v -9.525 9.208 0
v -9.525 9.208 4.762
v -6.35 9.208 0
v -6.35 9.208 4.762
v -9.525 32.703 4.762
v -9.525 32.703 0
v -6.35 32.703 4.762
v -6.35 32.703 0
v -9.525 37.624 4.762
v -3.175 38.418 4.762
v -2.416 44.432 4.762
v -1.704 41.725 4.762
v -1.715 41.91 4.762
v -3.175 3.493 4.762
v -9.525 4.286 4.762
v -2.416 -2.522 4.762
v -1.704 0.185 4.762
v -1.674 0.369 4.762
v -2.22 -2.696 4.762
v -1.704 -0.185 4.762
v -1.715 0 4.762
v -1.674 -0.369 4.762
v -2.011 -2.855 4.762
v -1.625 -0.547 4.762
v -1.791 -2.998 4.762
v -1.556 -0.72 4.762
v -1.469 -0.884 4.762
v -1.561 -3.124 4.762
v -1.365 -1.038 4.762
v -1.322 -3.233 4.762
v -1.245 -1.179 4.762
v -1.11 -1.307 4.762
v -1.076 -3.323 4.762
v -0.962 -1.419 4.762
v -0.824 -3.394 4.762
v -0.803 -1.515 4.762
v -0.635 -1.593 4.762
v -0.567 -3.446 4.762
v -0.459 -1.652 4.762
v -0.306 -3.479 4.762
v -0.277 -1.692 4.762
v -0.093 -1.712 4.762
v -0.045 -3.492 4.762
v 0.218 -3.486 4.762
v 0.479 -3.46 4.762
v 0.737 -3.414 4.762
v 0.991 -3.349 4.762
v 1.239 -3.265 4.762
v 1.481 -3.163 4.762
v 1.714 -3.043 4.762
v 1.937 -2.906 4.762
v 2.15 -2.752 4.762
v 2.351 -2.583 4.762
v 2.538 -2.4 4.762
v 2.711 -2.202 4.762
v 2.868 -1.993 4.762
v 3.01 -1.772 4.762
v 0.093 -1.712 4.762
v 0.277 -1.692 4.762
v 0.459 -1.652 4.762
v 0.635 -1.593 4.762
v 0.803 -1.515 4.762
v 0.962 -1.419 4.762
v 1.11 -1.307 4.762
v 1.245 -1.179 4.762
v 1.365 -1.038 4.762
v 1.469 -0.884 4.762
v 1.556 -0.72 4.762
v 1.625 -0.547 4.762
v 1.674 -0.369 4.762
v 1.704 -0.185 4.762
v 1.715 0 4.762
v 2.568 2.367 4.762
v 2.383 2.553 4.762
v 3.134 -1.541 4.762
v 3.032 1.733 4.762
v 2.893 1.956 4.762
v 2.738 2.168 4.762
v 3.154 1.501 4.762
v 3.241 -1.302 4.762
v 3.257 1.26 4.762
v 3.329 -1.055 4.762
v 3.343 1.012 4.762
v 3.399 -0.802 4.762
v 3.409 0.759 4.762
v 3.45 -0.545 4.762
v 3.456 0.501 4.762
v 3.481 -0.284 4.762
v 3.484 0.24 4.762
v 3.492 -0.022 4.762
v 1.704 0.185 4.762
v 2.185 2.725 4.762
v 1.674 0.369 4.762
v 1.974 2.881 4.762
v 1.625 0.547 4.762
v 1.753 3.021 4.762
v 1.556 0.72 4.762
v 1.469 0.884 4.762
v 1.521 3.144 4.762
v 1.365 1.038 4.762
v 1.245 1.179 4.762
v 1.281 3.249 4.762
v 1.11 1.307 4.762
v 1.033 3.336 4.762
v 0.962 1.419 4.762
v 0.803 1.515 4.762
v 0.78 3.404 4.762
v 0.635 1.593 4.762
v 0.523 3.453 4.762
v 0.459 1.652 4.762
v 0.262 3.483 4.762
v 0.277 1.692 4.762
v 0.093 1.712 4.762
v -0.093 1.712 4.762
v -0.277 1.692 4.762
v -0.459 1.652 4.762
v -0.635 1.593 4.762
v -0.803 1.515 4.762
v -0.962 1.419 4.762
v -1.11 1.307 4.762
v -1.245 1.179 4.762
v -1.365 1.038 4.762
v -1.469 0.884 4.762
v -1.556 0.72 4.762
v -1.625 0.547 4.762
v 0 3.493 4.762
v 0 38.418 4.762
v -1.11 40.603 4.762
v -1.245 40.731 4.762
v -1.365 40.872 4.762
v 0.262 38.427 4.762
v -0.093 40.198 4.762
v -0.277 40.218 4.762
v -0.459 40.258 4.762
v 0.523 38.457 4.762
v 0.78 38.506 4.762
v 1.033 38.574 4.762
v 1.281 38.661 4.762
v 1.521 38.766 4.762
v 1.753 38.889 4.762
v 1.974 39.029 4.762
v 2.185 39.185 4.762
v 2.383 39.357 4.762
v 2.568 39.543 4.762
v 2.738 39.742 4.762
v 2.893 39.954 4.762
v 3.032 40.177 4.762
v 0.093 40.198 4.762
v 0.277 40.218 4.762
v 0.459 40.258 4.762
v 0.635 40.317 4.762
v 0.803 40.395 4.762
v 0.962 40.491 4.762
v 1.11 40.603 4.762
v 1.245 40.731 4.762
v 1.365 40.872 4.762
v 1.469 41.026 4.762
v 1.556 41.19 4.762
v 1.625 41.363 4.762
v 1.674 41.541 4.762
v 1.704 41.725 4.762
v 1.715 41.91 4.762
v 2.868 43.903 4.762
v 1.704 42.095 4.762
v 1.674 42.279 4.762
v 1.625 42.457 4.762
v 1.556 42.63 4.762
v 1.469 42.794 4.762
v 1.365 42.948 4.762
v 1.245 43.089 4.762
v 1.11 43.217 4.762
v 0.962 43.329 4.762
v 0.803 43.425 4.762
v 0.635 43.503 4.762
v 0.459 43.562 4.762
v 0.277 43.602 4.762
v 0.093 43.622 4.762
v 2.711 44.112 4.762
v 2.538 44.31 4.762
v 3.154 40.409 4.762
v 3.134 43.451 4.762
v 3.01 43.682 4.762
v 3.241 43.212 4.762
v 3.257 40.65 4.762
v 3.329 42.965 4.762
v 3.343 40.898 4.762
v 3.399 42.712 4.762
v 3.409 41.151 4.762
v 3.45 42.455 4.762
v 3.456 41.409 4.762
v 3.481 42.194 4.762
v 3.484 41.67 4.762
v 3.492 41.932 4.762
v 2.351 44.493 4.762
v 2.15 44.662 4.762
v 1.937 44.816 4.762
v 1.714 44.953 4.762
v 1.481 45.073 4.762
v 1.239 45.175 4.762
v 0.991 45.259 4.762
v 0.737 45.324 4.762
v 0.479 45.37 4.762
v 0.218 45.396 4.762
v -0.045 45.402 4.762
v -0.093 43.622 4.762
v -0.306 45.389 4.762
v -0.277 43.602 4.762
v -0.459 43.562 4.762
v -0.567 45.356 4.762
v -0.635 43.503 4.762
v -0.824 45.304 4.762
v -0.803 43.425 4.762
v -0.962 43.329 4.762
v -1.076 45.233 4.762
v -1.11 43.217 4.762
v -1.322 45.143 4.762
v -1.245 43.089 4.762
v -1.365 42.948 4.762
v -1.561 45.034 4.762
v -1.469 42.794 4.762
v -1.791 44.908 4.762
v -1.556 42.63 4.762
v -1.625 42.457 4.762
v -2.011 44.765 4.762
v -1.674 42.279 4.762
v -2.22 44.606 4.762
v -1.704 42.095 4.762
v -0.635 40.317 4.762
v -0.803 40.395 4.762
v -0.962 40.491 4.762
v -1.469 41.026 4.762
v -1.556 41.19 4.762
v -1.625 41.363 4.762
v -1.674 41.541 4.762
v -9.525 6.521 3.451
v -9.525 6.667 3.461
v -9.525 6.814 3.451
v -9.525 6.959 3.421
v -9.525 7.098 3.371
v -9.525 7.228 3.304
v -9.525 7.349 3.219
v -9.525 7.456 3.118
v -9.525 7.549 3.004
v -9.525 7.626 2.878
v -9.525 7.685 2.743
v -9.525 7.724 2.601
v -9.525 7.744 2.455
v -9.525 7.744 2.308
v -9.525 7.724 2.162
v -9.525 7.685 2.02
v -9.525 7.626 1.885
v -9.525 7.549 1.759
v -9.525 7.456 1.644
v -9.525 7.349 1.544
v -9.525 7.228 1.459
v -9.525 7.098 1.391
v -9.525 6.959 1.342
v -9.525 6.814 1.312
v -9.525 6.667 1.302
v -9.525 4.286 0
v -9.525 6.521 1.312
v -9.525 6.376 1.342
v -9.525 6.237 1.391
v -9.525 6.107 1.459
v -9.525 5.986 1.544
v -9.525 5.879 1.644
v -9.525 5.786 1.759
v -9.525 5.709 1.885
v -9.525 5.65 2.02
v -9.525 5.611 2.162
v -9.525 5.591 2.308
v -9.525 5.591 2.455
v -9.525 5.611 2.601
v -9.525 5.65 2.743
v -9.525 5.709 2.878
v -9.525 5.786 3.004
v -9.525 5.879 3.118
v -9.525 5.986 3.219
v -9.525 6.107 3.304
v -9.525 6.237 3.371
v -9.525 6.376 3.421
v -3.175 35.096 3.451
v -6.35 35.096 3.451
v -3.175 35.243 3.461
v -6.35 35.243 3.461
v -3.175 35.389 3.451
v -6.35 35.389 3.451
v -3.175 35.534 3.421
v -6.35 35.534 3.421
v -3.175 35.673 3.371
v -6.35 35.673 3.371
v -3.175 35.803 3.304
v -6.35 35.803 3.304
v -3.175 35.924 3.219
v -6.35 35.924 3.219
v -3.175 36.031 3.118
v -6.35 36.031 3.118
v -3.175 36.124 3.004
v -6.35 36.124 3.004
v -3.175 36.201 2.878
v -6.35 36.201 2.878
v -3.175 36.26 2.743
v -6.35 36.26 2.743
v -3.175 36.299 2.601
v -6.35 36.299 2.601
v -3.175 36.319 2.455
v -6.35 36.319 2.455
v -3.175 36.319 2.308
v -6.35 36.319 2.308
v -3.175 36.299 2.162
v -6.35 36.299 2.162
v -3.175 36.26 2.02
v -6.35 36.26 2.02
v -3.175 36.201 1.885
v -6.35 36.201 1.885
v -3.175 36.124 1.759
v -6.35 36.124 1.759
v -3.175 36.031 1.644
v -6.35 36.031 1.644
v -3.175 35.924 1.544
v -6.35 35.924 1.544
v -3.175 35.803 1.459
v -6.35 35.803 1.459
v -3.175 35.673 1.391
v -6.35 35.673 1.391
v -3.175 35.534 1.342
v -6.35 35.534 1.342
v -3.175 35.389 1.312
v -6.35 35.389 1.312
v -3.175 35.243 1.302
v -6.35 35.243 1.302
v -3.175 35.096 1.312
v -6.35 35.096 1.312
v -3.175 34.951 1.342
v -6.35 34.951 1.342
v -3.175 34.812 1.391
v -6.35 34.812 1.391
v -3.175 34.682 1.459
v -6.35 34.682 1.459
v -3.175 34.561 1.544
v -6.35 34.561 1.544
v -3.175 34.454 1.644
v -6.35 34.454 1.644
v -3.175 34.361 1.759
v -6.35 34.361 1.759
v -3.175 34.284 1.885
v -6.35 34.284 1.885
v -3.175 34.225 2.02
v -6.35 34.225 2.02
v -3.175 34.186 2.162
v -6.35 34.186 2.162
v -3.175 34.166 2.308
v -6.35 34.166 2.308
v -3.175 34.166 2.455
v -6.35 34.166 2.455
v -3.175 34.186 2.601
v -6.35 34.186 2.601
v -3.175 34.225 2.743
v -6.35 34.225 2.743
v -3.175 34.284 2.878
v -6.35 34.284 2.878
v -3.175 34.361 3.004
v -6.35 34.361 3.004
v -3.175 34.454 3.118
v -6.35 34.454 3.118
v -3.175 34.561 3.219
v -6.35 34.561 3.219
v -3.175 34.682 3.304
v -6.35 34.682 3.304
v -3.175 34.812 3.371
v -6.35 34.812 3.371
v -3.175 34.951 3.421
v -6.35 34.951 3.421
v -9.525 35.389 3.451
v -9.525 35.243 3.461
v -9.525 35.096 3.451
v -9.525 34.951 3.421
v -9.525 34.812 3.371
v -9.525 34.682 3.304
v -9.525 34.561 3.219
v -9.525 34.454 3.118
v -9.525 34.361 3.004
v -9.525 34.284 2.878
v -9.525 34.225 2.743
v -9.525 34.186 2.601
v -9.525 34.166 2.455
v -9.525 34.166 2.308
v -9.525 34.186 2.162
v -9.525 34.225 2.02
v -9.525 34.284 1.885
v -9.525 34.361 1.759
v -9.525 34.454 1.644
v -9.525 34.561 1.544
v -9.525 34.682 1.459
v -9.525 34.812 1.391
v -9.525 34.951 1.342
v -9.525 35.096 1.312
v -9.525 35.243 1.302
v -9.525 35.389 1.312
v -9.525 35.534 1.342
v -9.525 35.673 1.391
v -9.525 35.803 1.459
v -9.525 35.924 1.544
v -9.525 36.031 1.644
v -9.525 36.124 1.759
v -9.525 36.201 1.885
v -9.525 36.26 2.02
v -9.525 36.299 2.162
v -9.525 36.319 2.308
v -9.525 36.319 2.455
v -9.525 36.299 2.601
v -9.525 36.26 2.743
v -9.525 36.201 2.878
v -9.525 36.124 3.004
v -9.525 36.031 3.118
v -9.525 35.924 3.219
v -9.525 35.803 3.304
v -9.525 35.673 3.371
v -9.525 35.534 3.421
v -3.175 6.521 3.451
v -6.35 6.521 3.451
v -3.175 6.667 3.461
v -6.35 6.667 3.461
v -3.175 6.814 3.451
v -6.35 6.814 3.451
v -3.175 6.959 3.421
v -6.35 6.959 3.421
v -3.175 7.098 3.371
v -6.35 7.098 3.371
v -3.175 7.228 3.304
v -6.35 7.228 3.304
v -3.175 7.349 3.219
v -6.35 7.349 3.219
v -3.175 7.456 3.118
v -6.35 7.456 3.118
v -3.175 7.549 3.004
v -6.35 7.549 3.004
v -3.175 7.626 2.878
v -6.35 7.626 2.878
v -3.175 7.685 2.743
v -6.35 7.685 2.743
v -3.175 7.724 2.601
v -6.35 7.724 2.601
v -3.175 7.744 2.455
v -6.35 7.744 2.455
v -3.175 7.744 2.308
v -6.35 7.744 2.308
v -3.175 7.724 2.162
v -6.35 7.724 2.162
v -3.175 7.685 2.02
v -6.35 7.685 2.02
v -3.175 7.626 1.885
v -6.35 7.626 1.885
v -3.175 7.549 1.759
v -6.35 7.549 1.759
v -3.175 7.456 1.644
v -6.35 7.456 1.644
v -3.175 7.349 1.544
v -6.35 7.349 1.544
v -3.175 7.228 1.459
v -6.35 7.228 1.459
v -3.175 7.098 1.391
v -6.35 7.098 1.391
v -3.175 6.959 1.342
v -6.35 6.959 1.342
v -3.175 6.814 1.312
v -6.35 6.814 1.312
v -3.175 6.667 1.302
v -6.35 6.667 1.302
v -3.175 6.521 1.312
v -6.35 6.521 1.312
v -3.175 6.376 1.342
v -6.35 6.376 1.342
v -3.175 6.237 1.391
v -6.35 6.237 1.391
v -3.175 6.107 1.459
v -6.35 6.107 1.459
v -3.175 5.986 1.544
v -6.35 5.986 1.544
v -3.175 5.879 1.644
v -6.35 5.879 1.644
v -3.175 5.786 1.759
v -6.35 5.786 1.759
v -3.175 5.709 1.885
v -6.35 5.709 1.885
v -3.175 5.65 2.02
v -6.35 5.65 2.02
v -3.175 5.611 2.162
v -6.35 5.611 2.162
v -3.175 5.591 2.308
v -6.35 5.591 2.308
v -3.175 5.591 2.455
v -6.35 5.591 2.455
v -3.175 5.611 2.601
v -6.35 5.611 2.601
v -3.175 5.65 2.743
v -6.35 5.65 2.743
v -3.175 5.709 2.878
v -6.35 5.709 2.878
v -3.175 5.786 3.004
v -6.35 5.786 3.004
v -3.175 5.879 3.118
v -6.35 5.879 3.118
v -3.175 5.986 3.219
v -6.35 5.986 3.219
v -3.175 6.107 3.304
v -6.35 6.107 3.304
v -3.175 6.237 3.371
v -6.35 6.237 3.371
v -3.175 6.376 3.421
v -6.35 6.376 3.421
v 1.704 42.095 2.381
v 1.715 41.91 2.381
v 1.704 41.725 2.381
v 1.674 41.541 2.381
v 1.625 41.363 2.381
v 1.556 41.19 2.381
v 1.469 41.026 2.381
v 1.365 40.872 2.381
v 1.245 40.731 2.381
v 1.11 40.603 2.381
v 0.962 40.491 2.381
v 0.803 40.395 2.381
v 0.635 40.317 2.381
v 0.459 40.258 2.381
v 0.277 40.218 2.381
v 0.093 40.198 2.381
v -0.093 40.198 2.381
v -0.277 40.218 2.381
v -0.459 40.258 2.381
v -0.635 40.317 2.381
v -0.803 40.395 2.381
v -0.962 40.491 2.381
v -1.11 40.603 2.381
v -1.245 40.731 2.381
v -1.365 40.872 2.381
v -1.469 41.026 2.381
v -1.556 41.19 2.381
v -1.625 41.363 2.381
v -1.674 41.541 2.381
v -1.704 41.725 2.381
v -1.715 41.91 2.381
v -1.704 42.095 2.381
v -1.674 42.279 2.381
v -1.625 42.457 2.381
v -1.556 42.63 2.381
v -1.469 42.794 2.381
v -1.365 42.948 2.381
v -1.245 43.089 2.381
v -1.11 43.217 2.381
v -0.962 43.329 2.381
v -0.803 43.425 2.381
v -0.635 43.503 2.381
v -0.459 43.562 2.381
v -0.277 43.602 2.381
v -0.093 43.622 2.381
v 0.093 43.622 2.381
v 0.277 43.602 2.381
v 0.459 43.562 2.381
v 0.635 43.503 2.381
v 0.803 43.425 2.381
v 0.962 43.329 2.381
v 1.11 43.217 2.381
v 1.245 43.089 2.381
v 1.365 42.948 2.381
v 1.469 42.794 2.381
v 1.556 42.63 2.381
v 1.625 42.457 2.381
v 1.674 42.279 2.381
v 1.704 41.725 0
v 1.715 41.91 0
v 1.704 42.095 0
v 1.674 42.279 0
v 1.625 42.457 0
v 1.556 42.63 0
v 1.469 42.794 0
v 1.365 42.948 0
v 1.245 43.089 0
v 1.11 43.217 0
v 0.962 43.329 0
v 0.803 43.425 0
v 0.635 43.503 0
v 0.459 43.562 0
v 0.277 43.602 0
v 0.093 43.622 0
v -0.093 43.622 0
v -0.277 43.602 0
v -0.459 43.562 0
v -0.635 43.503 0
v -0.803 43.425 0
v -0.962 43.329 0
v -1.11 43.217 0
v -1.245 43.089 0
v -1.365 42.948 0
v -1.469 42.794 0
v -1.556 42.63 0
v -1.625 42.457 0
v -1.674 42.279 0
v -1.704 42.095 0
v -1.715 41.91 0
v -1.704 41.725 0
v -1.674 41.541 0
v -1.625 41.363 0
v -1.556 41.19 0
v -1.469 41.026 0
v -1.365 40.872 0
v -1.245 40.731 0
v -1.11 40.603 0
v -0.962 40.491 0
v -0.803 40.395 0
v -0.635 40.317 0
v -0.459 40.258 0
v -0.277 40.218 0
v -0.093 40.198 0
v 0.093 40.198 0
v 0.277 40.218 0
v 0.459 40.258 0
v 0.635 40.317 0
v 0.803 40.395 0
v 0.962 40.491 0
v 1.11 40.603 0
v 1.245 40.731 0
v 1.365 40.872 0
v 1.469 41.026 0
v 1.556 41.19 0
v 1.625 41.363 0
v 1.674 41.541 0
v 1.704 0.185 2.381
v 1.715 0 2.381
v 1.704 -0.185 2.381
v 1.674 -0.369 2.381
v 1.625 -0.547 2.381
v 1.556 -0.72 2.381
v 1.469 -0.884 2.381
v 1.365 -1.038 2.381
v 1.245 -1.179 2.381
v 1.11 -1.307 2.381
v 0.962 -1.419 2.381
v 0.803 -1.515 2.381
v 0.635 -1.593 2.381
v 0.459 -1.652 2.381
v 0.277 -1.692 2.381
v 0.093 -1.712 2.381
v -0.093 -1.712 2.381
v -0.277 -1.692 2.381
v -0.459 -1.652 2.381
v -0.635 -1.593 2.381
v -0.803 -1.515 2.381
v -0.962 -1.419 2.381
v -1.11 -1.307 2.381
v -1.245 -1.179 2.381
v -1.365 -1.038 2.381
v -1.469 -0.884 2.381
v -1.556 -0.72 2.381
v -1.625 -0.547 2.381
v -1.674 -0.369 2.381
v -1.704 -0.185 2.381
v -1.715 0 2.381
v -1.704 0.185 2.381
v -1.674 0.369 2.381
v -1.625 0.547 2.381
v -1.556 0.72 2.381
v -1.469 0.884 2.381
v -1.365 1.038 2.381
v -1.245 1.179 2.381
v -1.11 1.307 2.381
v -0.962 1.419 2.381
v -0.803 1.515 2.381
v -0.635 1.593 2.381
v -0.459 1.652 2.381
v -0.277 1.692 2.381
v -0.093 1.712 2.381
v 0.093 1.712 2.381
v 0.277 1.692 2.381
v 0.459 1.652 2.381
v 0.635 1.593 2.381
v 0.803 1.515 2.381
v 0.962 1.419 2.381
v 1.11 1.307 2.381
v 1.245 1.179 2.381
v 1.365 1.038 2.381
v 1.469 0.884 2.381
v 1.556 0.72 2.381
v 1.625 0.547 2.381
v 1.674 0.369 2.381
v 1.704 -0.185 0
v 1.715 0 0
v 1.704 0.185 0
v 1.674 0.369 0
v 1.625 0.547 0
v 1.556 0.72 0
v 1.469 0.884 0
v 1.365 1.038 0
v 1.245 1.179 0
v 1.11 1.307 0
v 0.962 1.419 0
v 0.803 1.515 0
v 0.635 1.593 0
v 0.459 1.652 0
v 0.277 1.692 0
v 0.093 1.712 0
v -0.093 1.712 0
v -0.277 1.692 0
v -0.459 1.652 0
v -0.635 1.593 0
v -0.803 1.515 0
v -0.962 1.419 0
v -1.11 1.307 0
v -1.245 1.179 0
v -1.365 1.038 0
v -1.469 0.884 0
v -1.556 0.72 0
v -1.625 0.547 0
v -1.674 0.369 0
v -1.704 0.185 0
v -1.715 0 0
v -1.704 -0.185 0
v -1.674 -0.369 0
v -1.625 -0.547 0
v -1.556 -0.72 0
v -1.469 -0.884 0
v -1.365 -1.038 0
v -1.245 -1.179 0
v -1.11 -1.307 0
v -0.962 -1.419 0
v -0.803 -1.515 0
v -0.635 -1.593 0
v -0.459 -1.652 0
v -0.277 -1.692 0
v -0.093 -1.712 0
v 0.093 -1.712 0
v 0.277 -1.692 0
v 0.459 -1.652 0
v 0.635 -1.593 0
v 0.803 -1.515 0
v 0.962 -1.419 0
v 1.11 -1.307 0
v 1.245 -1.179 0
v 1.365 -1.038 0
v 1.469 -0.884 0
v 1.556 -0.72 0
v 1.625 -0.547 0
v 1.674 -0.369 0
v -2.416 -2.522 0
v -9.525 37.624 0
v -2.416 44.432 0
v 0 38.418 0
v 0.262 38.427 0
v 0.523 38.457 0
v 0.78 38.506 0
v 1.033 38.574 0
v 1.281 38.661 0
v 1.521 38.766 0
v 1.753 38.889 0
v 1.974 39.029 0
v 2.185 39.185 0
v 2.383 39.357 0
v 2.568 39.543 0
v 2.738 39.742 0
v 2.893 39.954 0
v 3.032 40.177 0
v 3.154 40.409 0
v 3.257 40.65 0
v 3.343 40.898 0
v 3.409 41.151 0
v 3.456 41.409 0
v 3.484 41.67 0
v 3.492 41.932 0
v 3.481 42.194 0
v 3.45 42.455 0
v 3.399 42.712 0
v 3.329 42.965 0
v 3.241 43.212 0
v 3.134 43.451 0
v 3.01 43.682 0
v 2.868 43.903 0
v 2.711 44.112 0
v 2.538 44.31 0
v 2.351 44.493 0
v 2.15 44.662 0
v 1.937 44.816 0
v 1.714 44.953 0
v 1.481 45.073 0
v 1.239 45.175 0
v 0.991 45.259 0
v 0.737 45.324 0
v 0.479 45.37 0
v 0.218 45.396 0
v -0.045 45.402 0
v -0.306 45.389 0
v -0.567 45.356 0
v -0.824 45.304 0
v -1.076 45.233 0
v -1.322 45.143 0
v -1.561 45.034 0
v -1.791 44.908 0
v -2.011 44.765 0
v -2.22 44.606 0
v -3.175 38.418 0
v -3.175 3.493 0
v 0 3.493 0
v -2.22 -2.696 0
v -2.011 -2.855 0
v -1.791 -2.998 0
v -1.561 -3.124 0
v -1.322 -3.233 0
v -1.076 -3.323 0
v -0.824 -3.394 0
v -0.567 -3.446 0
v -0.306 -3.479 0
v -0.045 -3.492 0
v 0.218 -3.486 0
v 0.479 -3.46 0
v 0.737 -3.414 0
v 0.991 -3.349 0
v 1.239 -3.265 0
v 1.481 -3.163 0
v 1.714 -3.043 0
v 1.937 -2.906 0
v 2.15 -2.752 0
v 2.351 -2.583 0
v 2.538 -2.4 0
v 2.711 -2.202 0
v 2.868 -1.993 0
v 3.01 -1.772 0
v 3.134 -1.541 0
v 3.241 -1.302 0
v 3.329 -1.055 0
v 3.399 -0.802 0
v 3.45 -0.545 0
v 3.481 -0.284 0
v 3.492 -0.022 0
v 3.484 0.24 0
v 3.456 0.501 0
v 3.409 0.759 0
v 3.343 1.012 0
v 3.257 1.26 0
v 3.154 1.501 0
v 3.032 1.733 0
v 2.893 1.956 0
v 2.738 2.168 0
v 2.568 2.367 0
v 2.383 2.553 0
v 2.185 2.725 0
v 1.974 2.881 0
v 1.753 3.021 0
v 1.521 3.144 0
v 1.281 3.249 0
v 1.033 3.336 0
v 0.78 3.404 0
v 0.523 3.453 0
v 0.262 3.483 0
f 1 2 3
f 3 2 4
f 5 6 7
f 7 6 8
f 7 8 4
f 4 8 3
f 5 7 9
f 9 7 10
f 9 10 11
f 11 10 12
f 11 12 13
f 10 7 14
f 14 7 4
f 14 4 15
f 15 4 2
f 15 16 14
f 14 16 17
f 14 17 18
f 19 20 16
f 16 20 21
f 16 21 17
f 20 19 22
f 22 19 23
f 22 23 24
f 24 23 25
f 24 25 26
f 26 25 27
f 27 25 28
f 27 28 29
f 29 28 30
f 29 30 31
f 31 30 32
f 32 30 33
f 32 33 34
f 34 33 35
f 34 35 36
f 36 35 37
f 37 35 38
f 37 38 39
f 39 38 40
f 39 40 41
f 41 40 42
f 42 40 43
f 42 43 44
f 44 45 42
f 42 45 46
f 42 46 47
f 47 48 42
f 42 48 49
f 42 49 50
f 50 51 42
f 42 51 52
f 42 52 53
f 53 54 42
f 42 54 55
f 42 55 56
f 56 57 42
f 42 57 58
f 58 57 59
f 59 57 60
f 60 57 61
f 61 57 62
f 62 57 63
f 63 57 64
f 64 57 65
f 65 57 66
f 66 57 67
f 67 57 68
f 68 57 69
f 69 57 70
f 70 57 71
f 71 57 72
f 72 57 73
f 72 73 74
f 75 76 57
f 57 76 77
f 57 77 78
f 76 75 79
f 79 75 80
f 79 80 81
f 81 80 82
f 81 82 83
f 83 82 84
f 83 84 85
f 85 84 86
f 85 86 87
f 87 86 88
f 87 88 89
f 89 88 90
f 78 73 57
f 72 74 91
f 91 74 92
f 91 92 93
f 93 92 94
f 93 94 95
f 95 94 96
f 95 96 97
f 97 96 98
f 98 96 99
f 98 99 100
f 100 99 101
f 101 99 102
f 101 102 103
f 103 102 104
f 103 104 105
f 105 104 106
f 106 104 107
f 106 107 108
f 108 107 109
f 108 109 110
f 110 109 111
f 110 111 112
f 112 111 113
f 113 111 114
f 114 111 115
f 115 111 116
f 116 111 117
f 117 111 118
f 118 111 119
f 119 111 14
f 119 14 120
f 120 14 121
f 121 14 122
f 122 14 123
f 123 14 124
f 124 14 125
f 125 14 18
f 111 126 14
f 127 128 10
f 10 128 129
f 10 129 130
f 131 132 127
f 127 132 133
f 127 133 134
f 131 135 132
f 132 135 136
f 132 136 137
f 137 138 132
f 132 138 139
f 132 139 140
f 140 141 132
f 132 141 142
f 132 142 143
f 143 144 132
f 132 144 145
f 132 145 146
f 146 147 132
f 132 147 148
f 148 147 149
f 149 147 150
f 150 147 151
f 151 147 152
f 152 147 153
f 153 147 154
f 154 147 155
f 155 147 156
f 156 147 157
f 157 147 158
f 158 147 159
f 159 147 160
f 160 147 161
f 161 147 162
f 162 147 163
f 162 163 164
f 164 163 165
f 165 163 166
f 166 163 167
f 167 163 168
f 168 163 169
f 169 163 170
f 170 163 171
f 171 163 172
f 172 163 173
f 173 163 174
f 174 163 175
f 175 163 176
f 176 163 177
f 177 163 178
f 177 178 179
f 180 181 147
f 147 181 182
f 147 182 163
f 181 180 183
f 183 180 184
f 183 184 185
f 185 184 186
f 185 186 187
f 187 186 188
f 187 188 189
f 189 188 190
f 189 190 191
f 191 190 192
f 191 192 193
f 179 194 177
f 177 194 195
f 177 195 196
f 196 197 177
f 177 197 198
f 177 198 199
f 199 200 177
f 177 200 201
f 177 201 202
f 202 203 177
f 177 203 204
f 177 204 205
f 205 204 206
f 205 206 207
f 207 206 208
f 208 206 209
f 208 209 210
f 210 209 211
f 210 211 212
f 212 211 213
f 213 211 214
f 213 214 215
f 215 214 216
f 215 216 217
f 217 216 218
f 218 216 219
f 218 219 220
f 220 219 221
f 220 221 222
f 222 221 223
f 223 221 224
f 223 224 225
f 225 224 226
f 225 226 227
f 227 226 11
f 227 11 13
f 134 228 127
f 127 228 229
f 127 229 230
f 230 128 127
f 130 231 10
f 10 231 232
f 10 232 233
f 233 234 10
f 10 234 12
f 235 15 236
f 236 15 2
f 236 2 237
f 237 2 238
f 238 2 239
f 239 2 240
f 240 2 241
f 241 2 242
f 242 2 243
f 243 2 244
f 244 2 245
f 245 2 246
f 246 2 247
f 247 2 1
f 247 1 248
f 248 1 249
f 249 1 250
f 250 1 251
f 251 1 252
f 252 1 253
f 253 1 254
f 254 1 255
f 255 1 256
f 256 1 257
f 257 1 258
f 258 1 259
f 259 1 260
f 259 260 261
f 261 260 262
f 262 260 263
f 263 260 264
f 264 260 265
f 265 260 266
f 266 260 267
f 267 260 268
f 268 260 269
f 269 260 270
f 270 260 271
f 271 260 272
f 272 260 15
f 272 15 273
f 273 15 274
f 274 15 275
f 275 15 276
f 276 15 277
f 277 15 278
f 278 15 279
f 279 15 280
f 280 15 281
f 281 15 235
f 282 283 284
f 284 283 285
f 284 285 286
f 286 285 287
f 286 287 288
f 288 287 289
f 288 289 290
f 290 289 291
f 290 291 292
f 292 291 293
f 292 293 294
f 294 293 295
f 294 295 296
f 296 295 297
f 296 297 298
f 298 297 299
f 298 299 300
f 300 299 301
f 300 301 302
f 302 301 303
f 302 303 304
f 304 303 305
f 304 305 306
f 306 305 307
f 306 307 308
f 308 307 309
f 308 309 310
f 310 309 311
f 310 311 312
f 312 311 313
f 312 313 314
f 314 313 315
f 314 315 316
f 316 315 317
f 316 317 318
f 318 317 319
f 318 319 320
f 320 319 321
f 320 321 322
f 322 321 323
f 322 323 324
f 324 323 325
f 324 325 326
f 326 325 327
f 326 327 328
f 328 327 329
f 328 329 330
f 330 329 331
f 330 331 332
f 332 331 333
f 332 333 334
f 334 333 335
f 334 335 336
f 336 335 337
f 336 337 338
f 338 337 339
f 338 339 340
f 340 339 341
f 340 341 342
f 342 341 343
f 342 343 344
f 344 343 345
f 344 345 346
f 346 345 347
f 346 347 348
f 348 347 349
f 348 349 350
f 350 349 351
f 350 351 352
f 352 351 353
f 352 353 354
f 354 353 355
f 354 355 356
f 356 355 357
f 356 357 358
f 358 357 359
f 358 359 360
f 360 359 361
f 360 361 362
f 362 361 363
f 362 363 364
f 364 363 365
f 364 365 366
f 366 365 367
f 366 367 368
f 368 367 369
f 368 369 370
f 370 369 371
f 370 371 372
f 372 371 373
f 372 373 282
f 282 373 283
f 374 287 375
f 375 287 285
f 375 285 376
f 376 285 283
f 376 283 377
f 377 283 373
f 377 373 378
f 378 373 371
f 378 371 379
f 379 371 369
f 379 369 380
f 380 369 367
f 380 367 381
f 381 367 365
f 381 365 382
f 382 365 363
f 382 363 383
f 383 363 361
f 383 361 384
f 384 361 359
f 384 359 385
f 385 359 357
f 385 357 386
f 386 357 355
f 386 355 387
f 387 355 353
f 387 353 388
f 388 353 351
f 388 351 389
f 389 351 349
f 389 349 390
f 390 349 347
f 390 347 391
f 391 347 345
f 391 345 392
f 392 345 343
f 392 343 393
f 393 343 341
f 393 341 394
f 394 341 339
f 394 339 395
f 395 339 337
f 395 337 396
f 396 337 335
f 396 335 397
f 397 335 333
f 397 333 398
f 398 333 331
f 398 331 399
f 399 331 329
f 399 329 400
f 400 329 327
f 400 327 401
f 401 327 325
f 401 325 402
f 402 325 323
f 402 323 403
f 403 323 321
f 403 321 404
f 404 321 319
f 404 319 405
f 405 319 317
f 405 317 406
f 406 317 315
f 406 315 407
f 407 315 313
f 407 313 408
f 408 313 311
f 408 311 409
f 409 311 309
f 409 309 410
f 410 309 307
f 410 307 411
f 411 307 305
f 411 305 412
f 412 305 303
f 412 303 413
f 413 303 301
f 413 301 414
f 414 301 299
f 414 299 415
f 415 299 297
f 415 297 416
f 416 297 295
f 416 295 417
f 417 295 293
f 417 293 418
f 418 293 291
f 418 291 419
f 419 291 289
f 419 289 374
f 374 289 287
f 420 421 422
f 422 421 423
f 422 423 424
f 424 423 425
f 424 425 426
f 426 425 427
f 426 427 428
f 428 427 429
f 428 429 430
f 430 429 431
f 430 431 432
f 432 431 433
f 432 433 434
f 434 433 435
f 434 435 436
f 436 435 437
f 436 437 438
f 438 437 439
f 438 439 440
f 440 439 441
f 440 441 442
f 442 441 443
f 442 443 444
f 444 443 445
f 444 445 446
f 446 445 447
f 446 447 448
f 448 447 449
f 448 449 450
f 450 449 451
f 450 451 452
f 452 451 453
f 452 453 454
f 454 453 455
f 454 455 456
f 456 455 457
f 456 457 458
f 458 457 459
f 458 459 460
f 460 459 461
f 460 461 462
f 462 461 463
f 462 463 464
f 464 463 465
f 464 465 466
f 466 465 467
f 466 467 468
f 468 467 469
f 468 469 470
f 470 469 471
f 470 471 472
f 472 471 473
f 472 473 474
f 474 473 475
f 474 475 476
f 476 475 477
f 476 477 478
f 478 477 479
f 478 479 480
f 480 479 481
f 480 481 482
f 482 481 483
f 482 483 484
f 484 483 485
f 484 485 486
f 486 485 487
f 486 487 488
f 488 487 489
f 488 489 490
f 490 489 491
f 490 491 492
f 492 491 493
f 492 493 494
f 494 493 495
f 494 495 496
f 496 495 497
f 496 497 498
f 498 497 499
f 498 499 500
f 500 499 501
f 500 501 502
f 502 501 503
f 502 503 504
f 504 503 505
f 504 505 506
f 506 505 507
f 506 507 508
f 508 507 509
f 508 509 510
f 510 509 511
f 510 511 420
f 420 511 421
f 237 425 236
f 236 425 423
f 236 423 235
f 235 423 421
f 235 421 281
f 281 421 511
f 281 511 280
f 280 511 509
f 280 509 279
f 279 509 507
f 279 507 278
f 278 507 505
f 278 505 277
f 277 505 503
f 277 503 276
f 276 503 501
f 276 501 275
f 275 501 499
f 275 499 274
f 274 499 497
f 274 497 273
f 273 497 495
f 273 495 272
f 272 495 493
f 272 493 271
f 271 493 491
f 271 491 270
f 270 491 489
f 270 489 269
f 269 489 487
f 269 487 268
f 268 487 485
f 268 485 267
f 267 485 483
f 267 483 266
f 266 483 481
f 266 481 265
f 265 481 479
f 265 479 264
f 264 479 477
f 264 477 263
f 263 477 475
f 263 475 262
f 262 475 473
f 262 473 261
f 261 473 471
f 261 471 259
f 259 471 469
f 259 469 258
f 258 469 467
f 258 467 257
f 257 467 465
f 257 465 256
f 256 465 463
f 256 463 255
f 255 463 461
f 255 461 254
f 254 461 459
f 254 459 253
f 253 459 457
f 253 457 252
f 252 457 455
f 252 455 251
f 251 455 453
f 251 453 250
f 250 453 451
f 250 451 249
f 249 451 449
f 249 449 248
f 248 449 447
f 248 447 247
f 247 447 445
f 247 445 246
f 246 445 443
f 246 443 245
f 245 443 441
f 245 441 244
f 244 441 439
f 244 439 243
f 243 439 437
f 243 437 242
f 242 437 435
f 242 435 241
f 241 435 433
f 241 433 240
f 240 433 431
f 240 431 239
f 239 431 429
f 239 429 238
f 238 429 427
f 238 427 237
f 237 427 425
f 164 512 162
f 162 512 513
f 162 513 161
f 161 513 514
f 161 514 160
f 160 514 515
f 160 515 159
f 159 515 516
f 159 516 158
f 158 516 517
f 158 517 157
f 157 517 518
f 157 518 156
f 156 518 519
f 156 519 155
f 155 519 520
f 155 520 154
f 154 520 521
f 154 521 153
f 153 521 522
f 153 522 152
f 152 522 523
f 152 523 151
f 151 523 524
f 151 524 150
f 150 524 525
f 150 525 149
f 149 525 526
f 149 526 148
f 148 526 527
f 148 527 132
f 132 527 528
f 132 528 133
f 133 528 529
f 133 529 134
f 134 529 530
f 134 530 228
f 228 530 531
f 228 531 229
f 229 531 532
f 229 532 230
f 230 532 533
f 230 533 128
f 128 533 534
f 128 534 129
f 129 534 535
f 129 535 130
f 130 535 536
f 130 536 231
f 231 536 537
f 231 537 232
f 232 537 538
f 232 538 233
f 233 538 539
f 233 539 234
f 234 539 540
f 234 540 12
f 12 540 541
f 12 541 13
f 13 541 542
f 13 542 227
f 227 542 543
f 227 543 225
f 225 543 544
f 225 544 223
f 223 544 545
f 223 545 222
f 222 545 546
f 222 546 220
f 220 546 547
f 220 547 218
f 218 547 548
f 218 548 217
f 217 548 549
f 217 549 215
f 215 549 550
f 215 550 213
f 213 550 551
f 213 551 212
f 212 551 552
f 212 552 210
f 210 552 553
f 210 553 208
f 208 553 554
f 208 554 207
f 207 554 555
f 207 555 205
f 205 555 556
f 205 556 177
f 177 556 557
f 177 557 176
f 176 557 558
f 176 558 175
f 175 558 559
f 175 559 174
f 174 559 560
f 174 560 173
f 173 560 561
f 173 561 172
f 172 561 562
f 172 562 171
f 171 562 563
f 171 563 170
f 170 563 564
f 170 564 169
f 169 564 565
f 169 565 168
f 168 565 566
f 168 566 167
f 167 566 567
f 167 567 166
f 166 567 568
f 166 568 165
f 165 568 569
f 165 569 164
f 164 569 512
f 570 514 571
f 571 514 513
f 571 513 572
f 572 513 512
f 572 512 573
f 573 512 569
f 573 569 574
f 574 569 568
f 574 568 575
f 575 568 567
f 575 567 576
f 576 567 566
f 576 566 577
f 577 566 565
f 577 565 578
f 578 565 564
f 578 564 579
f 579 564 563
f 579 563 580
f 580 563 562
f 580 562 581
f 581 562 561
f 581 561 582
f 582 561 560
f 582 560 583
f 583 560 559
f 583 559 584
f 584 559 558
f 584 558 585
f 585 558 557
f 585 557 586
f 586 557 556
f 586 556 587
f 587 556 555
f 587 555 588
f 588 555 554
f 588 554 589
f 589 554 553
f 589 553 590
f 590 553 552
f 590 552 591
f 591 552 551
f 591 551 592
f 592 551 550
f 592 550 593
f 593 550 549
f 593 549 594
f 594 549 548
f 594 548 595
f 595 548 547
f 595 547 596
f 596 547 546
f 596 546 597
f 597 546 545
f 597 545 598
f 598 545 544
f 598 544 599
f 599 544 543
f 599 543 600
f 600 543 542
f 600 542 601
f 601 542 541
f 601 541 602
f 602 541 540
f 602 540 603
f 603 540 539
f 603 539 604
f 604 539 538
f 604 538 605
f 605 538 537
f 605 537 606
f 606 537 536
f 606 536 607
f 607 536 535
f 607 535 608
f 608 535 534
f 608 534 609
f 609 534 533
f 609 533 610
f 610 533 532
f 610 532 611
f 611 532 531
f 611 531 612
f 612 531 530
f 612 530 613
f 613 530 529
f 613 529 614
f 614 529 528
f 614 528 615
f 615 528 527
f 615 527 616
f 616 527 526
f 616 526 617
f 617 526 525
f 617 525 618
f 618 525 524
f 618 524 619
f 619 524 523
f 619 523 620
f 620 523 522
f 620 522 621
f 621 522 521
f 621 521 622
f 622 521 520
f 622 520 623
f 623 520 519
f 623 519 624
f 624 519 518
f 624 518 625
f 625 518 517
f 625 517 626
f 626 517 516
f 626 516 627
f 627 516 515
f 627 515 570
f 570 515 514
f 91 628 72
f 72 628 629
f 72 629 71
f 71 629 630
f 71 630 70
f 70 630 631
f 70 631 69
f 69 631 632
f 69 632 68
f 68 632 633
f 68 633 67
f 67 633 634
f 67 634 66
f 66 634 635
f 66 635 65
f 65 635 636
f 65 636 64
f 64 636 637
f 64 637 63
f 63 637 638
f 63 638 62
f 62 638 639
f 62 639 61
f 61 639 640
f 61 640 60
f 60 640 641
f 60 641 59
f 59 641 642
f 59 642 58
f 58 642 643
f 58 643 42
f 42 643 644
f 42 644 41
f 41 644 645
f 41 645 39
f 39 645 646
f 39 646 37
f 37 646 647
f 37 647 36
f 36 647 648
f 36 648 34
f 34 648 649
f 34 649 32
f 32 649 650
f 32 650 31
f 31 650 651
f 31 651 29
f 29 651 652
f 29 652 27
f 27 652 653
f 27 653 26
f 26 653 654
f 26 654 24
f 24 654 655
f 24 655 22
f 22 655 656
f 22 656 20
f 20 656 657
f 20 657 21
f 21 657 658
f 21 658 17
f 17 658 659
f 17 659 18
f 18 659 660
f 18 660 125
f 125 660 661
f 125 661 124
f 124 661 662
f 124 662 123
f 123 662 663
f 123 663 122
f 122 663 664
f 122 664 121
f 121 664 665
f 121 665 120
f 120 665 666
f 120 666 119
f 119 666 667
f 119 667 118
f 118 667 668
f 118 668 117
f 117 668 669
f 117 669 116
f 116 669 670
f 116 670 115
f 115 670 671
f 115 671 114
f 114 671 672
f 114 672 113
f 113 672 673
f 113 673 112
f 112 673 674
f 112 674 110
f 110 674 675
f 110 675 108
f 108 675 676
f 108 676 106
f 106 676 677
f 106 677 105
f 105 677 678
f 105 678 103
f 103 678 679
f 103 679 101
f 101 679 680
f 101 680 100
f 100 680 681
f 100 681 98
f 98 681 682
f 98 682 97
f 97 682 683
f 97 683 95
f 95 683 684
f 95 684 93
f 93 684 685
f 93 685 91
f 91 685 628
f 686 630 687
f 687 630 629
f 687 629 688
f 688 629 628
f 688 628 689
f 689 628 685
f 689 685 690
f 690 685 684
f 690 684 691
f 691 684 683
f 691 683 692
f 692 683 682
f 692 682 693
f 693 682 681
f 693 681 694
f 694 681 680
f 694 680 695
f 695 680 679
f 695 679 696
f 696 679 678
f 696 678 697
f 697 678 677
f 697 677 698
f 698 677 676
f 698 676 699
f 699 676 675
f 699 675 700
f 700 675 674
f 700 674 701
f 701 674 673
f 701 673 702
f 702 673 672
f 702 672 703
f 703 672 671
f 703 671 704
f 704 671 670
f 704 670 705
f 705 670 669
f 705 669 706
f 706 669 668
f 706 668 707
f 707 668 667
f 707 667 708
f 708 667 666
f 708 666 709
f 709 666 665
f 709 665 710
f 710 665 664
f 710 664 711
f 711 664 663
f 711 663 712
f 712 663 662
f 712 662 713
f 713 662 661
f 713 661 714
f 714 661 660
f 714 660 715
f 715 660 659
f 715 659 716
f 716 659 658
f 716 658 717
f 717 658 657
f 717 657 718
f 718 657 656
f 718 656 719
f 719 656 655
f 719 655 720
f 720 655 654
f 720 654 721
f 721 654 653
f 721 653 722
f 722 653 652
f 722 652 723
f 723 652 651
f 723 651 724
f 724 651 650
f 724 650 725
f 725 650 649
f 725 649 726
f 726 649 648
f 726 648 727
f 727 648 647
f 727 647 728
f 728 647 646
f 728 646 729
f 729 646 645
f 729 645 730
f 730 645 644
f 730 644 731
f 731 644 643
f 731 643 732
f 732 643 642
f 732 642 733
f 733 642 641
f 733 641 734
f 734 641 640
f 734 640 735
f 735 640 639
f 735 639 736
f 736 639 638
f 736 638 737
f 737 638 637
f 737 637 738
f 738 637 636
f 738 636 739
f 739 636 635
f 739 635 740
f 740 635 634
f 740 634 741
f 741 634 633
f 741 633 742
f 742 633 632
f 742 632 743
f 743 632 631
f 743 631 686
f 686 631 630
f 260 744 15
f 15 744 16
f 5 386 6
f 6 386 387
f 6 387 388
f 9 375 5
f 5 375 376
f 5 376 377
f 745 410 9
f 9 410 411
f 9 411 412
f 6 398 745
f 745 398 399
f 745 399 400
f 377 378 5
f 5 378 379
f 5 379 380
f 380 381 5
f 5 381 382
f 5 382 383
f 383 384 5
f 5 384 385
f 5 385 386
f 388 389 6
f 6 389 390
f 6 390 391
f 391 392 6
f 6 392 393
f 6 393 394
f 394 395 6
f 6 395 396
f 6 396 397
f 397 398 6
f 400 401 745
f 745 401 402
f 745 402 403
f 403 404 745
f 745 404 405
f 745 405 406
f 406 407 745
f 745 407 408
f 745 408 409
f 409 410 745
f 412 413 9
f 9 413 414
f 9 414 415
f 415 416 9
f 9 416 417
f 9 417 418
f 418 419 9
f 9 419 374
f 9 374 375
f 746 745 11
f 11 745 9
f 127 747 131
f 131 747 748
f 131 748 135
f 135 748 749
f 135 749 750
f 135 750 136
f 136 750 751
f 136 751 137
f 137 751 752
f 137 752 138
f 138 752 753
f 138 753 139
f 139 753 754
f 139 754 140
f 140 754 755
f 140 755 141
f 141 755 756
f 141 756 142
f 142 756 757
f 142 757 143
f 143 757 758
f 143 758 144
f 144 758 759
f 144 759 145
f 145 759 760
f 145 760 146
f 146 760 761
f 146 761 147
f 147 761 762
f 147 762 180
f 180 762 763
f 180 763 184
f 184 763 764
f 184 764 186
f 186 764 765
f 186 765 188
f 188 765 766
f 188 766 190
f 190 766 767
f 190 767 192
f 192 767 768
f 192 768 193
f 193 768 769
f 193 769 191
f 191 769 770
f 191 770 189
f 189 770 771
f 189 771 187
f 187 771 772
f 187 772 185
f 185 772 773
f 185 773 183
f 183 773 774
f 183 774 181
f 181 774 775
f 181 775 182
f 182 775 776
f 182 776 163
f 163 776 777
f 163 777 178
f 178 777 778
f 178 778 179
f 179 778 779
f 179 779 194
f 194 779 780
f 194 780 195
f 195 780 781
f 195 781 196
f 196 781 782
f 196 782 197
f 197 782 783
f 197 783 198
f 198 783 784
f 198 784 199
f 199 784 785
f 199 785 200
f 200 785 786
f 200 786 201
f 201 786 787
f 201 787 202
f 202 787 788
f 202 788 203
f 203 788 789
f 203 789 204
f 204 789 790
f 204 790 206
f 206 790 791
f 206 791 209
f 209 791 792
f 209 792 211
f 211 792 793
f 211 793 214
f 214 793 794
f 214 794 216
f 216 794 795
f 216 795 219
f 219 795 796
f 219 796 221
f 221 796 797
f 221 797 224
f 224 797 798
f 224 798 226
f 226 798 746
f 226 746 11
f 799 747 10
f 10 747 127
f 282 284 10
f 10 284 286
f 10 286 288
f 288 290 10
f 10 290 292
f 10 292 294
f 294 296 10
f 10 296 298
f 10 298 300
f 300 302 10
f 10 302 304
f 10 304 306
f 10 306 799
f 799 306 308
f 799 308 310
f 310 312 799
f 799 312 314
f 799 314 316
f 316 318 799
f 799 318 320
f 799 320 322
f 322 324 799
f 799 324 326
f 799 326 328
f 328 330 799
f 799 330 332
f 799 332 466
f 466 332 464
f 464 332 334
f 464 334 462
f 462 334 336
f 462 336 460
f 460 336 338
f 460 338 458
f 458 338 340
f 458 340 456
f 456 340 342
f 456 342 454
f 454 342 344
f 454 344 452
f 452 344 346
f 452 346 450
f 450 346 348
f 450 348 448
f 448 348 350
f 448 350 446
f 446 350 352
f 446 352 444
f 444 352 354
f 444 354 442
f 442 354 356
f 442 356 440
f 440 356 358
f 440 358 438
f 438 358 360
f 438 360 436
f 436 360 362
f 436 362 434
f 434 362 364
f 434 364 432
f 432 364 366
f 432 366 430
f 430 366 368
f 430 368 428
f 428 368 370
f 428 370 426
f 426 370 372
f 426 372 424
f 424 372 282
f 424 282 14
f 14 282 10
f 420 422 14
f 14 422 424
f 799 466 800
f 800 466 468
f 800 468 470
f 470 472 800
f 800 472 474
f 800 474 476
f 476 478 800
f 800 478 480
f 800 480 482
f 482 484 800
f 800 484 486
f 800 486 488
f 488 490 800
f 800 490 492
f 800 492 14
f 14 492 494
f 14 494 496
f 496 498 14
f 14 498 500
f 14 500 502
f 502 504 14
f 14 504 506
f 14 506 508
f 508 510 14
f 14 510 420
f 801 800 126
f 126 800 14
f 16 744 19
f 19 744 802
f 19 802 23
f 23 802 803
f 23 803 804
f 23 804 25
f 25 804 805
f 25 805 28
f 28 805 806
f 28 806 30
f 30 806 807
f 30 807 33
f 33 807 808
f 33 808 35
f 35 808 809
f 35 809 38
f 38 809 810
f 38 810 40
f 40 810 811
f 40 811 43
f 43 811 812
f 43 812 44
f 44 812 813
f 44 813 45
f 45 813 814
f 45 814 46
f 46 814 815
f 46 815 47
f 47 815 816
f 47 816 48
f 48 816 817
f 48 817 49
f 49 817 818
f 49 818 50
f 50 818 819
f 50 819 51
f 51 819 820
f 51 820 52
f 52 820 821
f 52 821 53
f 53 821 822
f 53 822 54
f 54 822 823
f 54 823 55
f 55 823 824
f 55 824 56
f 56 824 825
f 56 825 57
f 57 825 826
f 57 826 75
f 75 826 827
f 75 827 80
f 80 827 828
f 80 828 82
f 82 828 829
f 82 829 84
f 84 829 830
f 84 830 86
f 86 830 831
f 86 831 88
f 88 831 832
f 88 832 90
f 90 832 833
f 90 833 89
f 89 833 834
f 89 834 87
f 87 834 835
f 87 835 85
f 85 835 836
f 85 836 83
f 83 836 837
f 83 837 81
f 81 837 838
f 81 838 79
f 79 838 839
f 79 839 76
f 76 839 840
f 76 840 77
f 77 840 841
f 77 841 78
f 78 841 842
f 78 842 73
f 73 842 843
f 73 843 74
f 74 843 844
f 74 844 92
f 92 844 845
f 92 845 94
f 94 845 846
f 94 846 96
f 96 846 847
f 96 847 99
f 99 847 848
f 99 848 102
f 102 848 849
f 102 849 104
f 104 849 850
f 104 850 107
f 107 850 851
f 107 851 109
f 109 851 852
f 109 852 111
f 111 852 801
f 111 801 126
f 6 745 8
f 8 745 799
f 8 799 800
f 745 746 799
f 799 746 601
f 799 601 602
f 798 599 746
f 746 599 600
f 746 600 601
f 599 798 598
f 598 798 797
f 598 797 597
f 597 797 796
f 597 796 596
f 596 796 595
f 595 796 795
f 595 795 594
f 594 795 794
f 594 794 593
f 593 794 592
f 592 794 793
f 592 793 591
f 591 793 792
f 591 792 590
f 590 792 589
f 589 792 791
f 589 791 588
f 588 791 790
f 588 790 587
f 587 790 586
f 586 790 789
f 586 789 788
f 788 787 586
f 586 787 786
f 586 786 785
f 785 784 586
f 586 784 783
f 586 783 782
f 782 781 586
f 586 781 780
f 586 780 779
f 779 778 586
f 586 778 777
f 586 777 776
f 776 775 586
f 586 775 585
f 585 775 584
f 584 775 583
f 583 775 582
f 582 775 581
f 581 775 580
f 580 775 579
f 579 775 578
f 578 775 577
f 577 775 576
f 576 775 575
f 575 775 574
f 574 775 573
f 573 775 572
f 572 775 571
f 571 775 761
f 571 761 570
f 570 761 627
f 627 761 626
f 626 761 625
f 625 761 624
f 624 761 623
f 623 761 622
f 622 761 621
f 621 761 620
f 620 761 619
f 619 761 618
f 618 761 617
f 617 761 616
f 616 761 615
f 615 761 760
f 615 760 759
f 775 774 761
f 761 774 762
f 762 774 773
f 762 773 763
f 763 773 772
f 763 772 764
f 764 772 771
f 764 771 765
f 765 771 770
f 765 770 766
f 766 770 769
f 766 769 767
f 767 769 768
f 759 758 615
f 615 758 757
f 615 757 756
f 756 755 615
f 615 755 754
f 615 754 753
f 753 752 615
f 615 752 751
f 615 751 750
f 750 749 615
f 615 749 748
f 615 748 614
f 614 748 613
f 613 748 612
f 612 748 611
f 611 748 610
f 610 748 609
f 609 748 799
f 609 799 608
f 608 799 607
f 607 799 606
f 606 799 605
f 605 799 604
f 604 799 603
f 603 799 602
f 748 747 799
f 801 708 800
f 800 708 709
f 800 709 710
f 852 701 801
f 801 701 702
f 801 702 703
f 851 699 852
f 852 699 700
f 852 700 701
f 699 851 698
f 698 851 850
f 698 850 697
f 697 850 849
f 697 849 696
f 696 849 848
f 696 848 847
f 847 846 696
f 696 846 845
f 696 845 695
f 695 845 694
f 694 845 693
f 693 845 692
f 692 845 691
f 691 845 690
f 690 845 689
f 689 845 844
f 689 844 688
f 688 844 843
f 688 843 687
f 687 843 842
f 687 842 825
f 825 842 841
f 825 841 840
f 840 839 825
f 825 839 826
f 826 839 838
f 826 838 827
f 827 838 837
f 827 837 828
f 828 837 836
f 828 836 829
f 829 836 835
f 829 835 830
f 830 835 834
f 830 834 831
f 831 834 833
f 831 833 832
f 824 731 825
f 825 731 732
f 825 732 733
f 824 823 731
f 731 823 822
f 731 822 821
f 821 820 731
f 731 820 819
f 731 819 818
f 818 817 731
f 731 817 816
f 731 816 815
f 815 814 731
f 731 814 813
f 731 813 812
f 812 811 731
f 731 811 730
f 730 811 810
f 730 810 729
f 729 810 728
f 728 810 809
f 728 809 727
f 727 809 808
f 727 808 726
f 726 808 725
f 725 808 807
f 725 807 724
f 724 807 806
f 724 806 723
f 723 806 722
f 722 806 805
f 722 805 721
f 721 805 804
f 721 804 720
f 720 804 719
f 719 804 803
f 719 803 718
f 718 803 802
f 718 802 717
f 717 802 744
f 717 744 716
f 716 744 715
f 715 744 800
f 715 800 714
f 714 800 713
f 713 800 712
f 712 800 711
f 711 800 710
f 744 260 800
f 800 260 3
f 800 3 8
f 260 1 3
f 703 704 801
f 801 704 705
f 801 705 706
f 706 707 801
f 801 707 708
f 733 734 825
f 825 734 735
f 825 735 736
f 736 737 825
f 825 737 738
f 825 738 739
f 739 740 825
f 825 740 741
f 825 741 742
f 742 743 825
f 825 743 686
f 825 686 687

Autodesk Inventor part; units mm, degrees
ref_plane "YZ Plane" through (0, 0, 0) normal (1, 0, 0) x (0, 1, 0)
ref_plane "XZ Plane" through (0, 0, 0) normal (0, 1, 0) x (-1, 0, 0)
ref_plane "XY Plane" through (0, 0, 0) normal (0, 0, 1) x (1, 0, 0)
sketch "Sketch1" plane through (0, 0, 0) normal (0, 0, 1) x (1, 0, 0)
  circle A0 centre (0, 0) radius 1.7145
  circle A1 centre (0, 41.91) radius 1.7145
  arc A2 (0, 38.4175) -> (-2.4156, 44.4323) centre (0, 41.91) ccw
  arc A3 (-2.4156, -2.5223) -> (0, 3.4925) centre (0, 0) ccw
  line L0 (0, 3.4925) -> (-3.175, 3.4925)
  line L1 (-3.175, 3.4925) -> (-3.175, 38.4175)
  line L2 (-3.175, 38.4175) -> (0, 38.4175)
  line L3 (-9.525, 37.6238) -> (-9.525, 4.2862)
  line L4 (-9.525, 4.2862) -> (-2.4156, -2.5223)
  line L5 (-9.525, 37.6238) -> (-2.4156, 44.4323)
  dimension "d0" = 3.429
  dimension "d1" = 3.429
  dimension "d2" = 6.985
  dimension "d3" = 6.985
  dimension "d4" = 3.175
  dimension "d5" = 41.91
  dimension "d6" = 33.3375
  dimension "d13" = 9.525
extrude "Extrusion1" add sketch "Sketch1" along normal blind 4.7625
sketch "Sketch2" plane through (-9.525, 4.2862, 0) normal (-1, 0, 0) x (0, 0, 1)
  circle A0 centre (2.3812, 30.9563) radius 1.0795
  circle A1 centre (2.3812, 2.3813) radius 1.0795
  line L0 (0, 33.3375) -> (4.7625, 33.3375) construction
  line L1 (2.3812, 30.9563) -> (2.3812, 2.3813) construction
  line L2 (0, 0) -> (0, 33.3375) construction
  point P0 (0, -4.2862)
  point P1 (2.3813, 33.3375)
  point P2 (2.3813, 16.6688)
  point P3 (0, 16.6688)
  dimension "d9" = 28.575
  dimension "d10" = 2.159
extrude "Extrusion2" cut sketch "Sketch2" against normal through all
sketch "Sketch3" plane through (-9.525, 4.2862, 0) normal (-1, 0, 0) x (0, 0, 1)
  circle A0 centre (2.3812, 30.9563) radius 1.0795 construction
  circle A1 centre (2.3812, 2.3813) radius 1.0795 construction
  line L0 (0, 0) -> (0, 33.3375) construction
  line L1 (0, 0) -> (4.7625, 0) construction
  line L2 (4.7625, 33.3375) -> (4.7625, 0) construction
  line L3 (0, 33.3375) -> (4.7625, 33.3375) construction
  line L4 (4.7625, -0.7937) -> (4.7625, 34.1313) projected
  line L5 (0, 28.4163) -> (4.7625, 28.4163)
  line L6 (4.7625, 28.4163) -> (4.7625, 4.9212)
  line L7 (4.7625, 4.9212) -> (0, 4.9212)
  line L8 (0, 4.9212) -> (0, 28.4163)
  point P0 (0, -4.2862)
  point P1 (4.7625, 16.6688)
  point P2 (4.7625, 16.6688)
  dimension "d14" = 23.495
extrude "Extrusion3" cut sketch "Sketch3" against normal blind 3.175
properties part number "relayHolder2" material "ABS Plastic"
